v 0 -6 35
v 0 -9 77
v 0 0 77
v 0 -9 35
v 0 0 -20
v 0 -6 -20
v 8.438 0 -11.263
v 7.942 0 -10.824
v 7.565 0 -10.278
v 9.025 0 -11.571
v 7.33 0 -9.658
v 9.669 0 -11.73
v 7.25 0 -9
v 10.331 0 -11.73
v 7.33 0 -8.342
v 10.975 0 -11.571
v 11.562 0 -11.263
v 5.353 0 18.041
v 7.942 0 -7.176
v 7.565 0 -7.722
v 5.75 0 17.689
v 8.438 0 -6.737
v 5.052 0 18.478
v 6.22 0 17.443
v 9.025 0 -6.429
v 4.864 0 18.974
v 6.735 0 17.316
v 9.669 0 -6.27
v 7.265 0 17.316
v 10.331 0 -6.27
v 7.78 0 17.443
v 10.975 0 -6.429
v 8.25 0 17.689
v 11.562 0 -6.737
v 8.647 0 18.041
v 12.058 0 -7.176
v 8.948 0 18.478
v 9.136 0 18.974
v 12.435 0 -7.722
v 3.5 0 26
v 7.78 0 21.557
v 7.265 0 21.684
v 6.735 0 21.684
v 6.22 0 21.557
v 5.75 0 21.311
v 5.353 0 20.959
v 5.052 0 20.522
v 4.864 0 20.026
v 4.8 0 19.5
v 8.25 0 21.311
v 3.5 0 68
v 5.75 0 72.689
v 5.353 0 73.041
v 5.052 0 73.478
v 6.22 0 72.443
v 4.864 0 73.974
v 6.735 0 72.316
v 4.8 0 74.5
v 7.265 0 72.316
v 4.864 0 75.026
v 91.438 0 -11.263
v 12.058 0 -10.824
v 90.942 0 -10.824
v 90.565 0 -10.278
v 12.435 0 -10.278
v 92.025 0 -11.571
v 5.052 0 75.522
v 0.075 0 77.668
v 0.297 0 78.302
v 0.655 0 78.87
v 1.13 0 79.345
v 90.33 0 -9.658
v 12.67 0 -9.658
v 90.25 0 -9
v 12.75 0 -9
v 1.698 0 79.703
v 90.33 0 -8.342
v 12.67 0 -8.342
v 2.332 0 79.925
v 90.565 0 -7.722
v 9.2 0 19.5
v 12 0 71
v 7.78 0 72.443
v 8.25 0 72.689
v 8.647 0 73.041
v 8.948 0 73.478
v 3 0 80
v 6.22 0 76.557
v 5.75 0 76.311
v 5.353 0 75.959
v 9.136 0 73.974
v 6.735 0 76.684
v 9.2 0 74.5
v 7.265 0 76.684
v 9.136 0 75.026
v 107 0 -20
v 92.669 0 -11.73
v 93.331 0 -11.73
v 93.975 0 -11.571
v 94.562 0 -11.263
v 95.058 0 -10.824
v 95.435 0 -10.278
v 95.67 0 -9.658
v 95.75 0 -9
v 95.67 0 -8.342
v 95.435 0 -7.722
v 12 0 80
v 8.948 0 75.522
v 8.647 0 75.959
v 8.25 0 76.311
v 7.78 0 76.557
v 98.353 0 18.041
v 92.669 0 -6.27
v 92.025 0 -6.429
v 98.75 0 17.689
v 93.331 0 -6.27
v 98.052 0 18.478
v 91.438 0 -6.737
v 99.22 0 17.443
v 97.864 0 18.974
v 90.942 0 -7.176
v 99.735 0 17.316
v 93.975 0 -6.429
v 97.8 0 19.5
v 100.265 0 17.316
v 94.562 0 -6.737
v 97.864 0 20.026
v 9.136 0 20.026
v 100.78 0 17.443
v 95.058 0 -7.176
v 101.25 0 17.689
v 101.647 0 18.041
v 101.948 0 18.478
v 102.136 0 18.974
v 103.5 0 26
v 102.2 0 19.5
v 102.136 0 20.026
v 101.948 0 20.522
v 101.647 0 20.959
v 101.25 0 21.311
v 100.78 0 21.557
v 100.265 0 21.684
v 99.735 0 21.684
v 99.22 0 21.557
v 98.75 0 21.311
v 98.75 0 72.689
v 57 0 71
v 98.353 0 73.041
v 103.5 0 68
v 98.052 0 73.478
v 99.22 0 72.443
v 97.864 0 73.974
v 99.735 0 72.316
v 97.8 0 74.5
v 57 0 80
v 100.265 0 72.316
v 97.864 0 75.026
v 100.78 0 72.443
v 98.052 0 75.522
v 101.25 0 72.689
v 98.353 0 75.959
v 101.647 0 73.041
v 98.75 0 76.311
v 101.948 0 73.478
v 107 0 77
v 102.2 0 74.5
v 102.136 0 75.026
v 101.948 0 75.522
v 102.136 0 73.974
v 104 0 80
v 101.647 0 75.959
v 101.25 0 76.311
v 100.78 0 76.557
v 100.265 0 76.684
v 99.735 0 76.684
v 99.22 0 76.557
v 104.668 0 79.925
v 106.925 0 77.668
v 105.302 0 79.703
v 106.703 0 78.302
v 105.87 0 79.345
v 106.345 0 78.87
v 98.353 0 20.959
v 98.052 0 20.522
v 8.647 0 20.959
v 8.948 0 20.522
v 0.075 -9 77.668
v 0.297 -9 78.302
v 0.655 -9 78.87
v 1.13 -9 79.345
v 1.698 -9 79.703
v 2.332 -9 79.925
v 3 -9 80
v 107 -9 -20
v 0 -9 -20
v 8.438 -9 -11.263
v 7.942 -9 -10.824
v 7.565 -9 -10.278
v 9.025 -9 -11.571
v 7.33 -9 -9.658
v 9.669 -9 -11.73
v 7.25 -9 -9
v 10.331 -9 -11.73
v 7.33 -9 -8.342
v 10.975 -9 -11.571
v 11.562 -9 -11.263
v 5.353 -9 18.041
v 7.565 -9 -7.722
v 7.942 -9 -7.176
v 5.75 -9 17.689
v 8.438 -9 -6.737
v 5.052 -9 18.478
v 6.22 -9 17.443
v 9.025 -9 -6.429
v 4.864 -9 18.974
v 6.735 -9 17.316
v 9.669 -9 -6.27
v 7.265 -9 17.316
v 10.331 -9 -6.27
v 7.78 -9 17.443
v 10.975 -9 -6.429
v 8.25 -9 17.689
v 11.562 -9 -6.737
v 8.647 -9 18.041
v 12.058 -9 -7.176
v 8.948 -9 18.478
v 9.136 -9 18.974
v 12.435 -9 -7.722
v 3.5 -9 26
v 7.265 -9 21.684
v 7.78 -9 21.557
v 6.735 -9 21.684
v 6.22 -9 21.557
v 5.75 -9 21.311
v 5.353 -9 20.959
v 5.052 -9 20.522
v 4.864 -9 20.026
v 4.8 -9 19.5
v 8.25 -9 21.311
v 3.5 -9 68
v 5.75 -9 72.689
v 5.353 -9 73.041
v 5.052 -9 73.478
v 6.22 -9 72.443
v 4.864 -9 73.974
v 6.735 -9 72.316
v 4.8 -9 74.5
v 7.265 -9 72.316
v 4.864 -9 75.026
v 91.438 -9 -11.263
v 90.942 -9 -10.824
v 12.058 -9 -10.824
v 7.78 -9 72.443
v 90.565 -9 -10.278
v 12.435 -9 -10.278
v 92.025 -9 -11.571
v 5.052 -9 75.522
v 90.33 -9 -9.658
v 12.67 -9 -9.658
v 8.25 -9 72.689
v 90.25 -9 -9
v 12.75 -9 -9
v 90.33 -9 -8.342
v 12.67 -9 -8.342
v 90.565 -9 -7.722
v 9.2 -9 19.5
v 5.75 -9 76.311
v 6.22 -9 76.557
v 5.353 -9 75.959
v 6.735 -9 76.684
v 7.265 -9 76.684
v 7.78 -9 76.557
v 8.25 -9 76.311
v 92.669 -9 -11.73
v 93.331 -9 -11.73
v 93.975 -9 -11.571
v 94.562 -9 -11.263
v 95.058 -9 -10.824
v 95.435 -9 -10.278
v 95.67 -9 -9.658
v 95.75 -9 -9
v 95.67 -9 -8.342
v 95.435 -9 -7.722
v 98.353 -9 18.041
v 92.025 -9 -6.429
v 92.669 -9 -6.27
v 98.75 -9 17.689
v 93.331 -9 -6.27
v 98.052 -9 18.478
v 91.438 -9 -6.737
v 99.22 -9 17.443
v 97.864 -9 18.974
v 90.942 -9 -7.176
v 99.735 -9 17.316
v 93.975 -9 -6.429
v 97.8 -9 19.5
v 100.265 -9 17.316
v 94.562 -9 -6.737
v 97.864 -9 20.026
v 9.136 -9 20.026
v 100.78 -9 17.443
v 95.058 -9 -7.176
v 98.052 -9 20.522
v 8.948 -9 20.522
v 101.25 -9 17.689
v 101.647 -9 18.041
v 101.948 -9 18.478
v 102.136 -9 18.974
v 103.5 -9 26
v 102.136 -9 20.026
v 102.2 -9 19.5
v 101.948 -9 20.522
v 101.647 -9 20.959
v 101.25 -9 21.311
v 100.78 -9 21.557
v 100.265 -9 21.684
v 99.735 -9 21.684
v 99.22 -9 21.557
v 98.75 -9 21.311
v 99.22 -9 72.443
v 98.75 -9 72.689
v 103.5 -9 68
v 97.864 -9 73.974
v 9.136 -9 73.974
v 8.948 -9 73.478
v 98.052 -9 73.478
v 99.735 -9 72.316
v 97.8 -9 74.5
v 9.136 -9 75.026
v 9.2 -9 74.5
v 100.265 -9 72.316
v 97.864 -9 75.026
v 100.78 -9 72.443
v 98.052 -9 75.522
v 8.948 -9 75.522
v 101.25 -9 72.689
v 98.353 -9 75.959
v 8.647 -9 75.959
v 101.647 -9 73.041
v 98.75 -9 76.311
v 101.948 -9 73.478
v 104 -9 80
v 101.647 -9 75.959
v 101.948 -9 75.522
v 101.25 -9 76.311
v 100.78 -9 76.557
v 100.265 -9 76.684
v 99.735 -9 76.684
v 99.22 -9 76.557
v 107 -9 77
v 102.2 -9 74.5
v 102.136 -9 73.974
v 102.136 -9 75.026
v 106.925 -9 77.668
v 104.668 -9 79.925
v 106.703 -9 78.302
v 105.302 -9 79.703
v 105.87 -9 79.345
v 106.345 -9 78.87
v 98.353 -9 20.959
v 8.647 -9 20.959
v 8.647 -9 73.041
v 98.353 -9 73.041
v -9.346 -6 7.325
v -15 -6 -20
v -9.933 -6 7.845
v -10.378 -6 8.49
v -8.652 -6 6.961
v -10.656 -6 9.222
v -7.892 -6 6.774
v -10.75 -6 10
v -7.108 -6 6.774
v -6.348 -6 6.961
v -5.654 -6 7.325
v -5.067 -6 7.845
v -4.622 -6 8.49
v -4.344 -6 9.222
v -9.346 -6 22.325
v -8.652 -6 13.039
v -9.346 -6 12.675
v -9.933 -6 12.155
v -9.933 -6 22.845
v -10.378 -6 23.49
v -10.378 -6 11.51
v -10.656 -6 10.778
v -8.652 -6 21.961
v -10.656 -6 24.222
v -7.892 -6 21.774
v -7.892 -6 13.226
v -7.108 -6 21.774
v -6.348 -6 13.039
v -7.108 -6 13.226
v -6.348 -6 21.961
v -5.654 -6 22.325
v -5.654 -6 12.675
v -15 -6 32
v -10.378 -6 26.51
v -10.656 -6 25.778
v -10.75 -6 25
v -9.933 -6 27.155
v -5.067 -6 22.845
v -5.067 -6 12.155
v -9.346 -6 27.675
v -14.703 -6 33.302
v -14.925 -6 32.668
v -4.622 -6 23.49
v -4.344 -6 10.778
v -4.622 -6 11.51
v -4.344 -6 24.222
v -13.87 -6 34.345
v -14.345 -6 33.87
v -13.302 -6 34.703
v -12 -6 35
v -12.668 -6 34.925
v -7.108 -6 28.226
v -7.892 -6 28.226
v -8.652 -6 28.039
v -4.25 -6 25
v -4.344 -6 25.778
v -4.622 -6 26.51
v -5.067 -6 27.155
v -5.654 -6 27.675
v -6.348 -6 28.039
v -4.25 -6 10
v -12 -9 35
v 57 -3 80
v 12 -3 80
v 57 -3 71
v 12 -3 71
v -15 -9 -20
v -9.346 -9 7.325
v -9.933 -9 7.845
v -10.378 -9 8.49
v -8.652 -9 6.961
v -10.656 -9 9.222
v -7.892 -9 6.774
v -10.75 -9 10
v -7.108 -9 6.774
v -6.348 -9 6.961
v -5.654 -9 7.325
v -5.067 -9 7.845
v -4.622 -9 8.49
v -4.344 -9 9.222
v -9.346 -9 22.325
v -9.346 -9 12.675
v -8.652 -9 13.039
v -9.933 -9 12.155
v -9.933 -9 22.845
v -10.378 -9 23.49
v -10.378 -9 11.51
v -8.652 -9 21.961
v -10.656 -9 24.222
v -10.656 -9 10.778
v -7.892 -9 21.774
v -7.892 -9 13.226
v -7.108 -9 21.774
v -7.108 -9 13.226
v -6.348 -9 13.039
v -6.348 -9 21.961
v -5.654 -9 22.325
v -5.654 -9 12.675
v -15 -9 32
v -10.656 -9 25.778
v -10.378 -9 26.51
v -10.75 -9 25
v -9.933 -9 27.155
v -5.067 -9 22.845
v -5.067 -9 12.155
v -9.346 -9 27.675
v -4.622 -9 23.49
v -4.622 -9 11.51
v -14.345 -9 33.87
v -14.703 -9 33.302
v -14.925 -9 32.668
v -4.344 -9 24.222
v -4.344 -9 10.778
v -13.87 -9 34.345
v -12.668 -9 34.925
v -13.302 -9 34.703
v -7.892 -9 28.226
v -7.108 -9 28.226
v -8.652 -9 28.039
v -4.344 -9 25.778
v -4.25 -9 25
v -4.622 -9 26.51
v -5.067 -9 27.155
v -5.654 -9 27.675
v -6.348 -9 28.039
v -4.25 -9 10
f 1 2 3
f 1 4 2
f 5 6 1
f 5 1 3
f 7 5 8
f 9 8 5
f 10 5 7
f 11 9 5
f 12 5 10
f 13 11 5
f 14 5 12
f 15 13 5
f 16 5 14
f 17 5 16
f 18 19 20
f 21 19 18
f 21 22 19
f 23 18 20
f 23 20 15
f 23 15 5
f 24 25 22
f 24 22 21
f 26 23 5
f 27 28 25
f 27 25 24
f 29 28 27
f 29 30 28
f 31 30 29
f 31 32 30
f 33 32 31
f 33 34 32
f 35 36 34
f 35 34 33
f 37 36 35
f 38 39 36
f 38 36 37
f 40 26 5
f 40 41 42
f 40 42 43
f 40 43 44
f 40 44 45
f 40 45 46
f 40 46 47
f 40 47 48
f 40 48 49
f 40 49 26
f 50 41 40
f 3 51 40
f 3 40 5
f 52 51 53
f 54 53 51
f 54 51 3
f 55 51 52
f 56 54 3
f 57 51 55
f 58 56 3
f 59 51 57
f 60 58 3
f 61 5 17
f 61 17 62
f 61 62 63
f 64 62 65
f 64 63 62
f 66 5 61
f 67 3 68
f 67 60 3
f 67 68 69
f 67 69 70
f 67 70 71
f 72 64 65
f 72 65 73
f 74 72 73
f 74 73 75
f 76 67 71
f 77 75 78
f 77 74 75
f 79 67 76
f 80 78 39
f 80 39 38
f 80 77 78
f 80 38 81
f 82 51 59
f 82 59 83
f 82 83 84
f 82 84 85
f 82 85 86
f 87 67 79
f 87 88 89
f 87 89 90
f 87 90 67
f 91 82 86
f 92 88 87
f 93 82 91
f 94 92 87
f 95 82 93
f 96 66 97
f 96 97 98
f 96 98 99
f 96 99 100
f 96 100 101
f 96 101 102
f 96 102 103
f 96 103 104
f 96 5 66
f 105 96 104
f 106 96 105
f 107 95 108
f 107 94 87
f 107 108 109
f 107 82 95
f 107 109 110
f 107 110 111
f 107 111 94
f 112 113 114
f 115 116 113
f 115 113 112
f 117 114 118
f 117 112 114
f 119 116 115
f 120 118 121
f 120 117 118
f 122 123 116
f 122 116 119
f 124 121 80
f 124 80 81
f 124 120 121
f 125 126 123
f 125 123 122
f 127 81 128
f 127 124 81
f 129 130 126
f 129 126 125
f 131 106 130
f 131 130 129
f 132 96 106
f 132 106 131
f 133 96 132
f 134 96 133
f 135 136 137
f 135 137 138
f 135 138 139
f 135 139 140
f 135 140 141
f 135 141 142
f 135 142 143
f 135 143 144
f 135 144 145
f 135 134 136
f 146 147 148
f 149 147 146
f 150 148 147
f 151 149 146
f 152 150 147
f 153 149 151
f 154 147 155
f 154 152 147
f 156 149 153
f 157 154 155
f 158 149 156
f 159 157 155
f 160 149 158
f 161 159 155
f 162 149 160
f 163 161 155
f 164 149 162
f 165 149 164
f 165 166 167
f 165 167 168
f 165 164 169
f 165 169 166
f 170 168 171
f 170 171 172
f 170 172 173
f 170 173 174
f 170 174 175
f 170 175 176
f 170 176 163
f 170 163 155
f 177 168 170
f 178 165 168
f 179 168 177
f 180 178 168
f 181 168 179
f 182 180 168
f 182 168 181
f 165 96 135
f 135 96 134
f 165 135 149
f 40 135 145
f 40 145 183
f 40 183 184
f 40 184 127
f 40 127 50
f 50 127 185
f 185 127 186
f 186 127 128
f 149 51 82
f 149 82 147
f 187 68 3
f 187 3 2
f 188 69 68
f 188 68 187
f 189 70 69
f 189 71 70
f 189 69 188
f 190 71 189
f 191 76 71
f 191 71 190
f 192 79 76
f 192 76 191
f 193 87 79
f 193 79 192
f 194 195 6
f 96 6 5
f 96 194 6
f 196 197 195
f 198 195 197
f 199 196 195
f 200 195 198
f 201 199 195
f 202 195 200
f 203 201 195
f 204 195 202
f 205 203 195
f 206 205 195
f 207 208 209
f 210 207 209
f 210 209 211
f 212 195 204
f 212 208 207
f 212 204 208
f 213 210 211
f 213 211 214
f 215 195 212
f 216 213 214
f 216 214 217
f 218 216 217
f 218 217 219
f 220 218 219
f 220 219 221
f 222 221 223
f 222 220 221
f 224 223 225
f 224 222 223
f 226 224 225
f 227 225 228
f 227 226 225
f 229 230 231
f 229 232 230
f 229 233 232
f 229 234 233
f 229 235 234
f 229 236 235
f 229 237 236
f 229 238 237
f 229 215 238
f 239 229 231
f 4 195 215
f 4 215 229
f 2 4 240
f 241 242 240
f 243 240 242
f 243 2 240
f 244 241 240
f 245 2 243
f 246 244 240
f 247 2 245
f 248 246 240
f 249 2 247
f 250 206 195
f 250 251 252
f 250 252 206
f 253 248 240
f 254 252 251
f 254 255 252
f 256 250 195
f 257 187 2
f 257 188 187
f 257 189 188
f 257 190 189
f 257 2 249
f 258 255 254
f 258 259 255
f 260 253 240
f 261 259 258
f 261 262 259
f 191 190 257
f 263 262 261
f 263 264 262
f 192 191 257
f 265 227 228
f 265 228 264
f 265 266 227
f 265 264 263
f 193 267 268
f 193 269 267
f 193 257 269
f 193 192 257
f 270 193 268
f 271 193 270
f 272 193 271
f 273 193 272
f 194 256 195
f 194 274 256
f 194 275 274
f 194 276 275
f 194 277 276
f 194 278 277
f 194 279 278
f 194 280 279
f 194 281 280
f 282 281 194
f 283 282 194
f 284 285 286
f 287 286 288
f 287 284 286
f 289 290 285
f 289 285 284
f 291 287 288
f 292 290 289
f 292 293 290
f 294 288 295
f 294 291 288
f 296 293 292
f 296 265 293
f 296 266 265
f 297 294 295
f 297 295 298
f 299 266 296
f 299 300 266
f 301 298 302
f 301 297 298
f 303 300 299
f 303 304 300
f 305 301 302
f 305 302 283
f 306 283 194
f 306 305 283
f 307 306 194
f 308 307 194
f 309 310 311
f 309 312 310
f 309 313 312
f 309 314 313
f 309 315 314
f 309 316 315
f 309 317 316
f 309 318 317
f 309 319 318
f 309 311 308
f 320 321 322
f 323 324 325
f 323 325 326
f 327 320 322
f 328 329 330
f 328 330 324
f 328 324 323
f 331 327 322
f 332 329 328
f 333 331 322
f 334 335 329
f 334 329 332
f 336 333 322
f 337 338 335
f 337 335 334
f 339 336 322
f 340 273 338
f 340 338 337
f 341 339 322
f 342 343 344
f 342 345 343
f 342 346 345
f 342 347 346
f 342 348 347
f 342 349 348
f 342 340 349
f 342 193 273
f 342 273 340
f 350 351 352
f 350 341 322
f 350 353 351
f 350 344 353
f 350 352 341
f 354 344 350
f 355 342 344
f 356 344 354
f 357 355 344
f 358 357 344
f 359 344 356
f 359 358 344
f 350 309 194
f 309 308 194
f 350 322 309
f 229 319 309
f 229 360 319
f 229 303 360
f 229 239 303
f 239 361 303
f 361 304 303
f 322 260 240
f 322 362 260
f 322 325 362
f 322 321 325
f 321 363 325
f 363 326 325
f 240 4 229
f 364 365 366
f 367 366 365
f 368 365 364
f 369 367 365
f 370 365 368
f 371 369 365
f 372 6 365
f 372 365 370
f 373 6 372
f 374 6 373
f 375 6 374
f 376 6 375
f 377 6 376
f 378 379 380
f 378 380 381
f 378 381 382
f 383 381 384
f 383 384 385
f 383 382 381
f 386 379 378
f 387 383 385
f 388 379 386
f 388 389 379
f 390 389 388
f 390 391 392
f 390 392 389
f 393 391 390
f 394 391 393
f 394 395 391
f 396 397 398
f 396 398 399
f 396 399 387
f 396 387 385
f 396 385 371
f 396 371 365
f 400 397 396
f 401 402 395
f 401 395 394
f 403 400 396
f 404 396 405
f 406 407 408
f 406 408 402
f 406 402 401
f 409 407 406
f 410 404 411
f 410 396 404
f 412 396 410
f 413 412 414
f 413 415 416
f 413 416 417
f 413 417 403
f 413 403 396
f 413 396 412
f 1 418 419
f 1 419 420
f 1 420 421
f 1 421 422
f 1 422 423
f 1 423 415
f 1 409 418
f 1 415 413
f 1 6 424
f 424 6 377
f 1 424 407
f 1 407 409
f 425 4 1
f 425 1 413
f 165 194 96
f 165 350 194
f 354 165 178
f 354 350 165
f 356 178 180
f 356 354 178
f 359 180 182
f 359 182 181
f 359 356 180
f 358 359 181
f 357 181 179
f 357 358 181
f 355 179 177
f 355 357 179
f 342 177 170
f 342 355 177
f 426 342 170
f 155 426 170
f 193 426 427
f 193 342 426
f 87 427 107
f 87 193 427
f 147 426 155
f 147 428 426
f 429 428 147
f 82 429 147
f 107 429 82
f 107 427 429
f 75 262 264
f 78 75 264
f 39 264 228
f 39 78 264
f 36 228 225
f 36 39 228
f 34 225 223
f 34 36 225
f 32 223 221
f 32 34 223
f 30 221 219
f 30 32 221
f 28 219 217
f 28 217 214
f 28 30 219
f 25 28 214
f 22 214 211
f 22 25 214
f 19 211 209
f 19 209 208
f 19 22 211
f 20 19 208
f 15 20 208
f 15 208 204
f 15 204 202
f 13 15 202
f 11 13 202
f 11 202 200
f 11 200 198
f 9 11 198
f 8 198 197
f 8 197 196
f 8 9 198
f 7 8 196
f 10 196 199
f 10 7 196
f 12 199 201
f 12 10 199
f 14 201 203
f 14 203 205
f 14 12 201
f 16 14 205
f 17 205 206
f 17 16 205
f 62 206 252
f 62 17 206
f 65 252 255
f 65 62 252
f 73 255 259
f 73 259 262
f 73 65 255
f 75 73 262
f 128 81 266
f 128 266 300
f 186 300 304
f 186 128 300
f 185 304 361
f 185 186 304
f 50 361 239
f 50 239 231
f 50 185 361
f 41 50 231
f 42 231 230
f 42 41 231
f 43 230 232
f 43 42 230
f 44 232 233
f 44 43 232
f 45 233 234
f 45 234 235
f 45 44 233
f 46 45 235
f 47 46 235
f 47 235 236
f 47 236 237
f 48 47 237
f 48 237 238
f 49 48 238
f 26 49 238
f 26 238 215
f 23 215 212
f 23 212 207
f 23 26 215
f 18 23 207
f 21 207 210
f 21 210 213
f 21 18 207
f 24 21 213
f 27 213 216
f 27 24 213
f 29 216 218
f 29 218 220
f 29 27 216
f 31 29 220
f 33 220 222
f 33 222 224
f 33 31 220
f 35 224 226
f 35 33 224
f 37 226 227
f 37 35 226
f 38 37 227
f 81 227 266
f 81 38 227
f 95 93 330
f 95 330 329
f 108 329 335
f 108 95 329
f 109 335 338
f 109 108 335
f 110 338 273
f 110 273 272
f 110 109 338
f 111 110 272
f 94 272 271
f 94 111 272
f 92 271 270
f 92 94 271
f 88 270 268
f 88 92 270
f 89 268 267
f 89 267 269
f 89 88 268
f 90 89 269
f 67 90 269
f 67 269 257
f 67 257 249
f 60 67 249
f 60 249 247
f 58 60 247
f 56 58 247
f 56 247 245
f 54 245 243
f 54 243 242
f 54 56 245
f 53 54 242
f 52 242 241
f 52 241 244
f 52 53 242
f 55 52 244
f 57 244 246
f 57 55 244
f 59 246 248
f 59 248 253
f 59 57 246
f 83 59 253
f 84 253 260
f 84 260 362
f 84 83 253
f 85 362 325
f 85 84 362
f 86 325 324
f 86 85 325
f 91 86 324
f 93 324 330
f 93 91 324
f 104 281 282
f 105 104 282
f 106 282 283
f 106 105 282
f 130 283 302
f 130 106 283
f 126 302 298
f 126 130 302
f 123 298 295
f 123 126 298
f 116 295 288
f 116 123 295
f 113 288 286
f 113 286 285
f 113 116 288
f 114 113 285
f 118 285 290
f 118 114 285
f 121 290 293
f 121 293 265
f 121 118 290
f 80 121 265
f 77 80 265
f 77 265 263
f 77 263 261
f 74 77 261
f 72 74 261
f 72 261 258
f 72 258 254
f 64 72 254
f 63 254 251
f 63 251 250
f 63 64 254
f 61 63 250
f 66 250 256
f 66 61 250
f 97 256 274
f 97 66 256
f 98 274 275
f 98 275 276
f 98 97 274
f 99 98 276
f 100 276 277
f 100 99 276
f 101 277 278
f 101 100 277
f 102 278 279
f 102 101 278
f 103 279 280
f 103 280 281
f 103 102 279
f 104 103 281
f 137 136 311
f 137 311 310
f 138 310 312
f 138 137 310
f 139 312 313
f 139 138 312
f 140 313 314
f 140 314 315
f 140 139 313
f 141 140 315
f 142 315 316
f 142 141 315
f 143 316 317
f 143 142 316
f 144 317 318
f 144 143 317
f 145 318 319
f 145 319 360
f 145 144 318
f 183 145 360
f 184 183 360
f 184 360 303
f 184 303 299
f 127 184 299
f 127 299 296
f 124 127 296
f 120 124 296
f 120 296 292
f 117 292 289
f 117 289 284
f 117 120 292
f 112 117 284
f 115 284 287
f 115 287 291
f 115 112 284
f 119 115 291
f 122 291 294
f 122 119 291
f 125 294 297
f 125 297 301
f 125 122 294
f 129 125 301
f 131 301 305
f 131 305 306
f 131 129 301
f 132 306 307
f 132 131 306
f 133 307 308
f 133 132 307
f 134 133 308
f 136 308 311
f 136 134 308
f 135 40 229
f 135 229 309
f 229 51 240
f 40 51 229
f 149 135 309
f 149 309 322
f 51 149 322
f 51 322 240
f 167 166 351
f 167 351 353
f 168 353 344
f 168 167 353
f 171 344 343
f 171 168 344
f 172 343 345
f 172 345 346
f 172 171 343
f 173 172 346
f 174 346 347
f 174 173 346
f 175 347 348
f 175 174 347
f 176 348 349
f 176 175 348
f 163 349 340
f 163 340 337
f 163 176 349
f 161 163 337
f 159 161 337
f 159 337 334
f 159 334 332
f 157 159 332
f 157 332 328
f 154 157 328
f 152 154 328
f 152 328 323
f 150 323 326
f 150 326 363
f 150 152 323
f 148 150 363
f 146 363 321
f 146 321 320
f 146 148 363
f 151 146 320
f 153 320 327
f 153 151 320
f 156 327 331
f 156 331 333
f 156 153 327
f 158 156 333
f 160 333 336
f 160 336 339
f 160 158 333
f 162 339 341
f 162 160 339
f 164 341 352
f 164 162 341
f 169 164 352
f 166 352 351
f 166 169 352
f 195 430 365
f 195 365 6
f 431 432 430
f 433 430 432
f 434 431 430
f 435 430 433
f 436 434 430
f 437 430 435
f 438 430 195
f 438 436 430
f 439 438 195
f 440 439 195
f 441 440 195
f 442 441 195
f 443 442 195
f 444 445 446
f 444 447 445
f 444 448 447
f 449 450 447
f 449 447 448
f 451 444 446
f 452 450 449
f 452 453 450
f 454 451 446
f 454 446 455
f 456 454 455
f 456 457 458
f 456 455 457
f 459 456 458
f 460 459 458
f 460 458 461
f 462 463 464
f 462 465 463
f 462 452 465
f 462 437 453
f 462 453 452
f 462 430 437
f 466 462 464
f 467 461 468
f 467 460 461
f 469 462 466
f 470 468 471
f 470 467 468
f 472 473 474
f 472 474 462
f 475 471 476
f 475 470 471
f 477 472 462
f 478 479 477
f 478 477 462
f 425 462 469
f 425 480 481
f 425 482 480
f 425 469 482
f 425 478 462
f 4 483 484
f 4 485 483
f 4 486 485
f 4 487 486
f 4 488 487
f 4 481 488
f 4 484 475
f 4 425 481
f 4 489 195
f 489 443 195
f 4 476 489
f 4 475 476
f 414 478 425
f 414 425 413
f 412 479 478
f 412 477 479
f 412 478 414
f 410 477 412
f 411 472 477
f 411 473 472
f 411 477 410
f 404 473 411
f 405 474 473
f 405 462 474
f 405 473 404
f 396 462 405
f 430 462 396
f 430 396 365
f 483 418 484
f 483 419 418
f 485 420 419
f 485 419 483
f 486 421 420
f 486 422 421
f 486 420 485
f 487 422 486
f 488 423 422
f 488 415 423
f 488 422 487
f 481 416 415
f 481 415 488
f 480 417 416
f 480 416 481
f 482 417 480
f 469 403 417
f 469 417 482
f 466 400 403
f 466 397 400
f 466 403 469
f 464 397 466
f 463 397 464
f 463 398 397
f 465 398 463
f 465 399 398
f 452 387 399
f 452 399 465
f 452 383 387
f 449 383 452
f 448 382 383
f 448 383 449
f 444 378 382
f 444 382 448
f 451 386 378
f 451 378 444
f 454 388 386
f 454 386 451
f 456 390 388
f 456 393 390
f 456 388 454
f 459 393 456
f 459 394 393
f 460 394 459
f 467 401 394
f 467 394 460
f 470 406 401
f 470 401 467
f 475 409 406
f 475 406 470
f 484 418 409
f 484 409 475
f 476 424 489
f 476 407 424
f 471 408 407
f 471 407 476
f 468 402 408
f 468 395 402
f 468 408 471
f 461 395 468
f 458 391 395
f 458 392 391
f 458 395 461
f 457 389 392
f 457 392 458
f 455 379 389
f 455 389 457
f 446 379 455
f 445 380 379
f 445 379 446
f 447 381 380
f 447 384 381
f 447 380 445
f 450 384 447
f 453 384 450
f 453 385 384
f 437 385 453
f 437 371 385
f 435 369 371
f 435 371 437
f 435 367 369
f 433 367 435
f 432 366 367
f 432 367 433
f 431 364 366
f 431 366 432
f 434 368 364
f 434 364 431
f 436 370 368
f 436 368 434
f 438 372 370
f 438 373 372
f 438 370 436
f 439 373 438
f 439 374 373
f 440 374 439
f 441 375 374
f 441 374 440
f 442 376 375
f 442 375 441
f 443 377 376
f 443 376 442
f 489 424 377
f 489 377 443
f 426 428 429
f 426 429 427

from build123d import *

# Parameters (mm, degrees)
SKETCH_W     = 107
SKETCH_H     = 100
SKETCH_R     = 2.2
SKETCH_R_2   = 2.75
SKETCH_W_2   = 100
SKETCH_H_2   = 42
PAD_DEPTH    = 9
SKETCH001_W  = 45
SKETCH001_H  = 9
POCKET_DEPTH = 3
SKETCH004_W  = 15
SKETCH004_H  = 55
SKETCH004_R  = 3.25
PAD002_DEPTH = 3
FILLET_R     = 3


with BuildPart() as part:
    # Sketch → Pad (new body)
    with BuildSketch(Plane.XZ):
        with Locations((53.5, 30)):
            Rectangle(SKETCH_W, SKETCH_H)
        with Locations((7, 19.5)):
            Circle(SKETCH_R, mode=Mode.SUBTRACT)
        with Locations((100, 19.5)):
            Circle(SKETCH_R, mode=Mode.SUBTRACT)
        with Locations((7, 74.5)):
            Circle(SKETCH_R, mode=Mode.SUBTRACT)
        with Locations((100, 74.5)):
            Circle(SKETCH_R, mode=Mode.SUBTRACT)
        with Locations((10, -9)):
            Circle(SKETCH_R_2, mode=Mode.SUBTRACT)
        with Locations((93, -9)):
            Circle(SKETCH_R_2, mode=Mode.SUBTRACT)
        with Locations((53.5, 47)):
            Rectangle(SKETCH_W_2, SKETCH_H_2, mode=Mode.SUBTRACT)
    extrude(amount=PAD_DEPTH)

    # Sketch001 → Pocket (cut)
    with BuildSketch(Plane.XZ):
        with Locations((34.5, 75.5)):
            Rectangle(SKETCH001_W, SKETCH001_H)
    extrude(amount=POCKET_DEPTH, mode=Mode.SUBTRACT)

    # Sketch004 → Pad002 (join)
    with BuildSketch(Plane(origin=(0, -9, -10), x_dir=(1, 0, 0), z_dir=(0, -1, 0))):
        with Locations((-7.5, 17.5)):
            Rectangle(SKETCH004_W, SKETCH004_H)
        with Locations((-7.5, 20)):
            Circle(SKETCH004_R, mode=Mode.SUBTRACT)
        with Locations((-7.5, 35)):
            Circle(SKETCH004_R, mode=Mode.SUBTRACT)
    extrude(amount=-PAD002_DEPTH)

    # Fillet
    fillet_edges = [part.edges().sort_by_distance(p)[0] for p in [
        (0, -4.5, 80),
        (-15, -7.5, 35),
        (107, -4.5, 80),
    ]]
    fillet(fillet_edges, radius=FILLET_R)


solid = part.part
